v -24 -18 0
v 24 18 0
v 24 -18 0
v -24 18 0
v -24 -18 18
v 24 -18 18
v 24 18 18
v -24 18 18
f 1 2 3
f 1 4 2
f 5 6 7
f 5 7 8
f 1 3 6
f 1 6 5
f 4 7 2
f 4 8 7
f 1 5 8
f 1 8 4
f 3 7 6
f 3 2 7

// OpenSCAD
// Gemini 4 Argon Parametric OpenSCAD — PRT-07: Snap-Fit Disposable Tip Stripping Fork
$fn = 64;
translate([-24.00, -18.00, 0])
  cube([48, 36, 18]);
